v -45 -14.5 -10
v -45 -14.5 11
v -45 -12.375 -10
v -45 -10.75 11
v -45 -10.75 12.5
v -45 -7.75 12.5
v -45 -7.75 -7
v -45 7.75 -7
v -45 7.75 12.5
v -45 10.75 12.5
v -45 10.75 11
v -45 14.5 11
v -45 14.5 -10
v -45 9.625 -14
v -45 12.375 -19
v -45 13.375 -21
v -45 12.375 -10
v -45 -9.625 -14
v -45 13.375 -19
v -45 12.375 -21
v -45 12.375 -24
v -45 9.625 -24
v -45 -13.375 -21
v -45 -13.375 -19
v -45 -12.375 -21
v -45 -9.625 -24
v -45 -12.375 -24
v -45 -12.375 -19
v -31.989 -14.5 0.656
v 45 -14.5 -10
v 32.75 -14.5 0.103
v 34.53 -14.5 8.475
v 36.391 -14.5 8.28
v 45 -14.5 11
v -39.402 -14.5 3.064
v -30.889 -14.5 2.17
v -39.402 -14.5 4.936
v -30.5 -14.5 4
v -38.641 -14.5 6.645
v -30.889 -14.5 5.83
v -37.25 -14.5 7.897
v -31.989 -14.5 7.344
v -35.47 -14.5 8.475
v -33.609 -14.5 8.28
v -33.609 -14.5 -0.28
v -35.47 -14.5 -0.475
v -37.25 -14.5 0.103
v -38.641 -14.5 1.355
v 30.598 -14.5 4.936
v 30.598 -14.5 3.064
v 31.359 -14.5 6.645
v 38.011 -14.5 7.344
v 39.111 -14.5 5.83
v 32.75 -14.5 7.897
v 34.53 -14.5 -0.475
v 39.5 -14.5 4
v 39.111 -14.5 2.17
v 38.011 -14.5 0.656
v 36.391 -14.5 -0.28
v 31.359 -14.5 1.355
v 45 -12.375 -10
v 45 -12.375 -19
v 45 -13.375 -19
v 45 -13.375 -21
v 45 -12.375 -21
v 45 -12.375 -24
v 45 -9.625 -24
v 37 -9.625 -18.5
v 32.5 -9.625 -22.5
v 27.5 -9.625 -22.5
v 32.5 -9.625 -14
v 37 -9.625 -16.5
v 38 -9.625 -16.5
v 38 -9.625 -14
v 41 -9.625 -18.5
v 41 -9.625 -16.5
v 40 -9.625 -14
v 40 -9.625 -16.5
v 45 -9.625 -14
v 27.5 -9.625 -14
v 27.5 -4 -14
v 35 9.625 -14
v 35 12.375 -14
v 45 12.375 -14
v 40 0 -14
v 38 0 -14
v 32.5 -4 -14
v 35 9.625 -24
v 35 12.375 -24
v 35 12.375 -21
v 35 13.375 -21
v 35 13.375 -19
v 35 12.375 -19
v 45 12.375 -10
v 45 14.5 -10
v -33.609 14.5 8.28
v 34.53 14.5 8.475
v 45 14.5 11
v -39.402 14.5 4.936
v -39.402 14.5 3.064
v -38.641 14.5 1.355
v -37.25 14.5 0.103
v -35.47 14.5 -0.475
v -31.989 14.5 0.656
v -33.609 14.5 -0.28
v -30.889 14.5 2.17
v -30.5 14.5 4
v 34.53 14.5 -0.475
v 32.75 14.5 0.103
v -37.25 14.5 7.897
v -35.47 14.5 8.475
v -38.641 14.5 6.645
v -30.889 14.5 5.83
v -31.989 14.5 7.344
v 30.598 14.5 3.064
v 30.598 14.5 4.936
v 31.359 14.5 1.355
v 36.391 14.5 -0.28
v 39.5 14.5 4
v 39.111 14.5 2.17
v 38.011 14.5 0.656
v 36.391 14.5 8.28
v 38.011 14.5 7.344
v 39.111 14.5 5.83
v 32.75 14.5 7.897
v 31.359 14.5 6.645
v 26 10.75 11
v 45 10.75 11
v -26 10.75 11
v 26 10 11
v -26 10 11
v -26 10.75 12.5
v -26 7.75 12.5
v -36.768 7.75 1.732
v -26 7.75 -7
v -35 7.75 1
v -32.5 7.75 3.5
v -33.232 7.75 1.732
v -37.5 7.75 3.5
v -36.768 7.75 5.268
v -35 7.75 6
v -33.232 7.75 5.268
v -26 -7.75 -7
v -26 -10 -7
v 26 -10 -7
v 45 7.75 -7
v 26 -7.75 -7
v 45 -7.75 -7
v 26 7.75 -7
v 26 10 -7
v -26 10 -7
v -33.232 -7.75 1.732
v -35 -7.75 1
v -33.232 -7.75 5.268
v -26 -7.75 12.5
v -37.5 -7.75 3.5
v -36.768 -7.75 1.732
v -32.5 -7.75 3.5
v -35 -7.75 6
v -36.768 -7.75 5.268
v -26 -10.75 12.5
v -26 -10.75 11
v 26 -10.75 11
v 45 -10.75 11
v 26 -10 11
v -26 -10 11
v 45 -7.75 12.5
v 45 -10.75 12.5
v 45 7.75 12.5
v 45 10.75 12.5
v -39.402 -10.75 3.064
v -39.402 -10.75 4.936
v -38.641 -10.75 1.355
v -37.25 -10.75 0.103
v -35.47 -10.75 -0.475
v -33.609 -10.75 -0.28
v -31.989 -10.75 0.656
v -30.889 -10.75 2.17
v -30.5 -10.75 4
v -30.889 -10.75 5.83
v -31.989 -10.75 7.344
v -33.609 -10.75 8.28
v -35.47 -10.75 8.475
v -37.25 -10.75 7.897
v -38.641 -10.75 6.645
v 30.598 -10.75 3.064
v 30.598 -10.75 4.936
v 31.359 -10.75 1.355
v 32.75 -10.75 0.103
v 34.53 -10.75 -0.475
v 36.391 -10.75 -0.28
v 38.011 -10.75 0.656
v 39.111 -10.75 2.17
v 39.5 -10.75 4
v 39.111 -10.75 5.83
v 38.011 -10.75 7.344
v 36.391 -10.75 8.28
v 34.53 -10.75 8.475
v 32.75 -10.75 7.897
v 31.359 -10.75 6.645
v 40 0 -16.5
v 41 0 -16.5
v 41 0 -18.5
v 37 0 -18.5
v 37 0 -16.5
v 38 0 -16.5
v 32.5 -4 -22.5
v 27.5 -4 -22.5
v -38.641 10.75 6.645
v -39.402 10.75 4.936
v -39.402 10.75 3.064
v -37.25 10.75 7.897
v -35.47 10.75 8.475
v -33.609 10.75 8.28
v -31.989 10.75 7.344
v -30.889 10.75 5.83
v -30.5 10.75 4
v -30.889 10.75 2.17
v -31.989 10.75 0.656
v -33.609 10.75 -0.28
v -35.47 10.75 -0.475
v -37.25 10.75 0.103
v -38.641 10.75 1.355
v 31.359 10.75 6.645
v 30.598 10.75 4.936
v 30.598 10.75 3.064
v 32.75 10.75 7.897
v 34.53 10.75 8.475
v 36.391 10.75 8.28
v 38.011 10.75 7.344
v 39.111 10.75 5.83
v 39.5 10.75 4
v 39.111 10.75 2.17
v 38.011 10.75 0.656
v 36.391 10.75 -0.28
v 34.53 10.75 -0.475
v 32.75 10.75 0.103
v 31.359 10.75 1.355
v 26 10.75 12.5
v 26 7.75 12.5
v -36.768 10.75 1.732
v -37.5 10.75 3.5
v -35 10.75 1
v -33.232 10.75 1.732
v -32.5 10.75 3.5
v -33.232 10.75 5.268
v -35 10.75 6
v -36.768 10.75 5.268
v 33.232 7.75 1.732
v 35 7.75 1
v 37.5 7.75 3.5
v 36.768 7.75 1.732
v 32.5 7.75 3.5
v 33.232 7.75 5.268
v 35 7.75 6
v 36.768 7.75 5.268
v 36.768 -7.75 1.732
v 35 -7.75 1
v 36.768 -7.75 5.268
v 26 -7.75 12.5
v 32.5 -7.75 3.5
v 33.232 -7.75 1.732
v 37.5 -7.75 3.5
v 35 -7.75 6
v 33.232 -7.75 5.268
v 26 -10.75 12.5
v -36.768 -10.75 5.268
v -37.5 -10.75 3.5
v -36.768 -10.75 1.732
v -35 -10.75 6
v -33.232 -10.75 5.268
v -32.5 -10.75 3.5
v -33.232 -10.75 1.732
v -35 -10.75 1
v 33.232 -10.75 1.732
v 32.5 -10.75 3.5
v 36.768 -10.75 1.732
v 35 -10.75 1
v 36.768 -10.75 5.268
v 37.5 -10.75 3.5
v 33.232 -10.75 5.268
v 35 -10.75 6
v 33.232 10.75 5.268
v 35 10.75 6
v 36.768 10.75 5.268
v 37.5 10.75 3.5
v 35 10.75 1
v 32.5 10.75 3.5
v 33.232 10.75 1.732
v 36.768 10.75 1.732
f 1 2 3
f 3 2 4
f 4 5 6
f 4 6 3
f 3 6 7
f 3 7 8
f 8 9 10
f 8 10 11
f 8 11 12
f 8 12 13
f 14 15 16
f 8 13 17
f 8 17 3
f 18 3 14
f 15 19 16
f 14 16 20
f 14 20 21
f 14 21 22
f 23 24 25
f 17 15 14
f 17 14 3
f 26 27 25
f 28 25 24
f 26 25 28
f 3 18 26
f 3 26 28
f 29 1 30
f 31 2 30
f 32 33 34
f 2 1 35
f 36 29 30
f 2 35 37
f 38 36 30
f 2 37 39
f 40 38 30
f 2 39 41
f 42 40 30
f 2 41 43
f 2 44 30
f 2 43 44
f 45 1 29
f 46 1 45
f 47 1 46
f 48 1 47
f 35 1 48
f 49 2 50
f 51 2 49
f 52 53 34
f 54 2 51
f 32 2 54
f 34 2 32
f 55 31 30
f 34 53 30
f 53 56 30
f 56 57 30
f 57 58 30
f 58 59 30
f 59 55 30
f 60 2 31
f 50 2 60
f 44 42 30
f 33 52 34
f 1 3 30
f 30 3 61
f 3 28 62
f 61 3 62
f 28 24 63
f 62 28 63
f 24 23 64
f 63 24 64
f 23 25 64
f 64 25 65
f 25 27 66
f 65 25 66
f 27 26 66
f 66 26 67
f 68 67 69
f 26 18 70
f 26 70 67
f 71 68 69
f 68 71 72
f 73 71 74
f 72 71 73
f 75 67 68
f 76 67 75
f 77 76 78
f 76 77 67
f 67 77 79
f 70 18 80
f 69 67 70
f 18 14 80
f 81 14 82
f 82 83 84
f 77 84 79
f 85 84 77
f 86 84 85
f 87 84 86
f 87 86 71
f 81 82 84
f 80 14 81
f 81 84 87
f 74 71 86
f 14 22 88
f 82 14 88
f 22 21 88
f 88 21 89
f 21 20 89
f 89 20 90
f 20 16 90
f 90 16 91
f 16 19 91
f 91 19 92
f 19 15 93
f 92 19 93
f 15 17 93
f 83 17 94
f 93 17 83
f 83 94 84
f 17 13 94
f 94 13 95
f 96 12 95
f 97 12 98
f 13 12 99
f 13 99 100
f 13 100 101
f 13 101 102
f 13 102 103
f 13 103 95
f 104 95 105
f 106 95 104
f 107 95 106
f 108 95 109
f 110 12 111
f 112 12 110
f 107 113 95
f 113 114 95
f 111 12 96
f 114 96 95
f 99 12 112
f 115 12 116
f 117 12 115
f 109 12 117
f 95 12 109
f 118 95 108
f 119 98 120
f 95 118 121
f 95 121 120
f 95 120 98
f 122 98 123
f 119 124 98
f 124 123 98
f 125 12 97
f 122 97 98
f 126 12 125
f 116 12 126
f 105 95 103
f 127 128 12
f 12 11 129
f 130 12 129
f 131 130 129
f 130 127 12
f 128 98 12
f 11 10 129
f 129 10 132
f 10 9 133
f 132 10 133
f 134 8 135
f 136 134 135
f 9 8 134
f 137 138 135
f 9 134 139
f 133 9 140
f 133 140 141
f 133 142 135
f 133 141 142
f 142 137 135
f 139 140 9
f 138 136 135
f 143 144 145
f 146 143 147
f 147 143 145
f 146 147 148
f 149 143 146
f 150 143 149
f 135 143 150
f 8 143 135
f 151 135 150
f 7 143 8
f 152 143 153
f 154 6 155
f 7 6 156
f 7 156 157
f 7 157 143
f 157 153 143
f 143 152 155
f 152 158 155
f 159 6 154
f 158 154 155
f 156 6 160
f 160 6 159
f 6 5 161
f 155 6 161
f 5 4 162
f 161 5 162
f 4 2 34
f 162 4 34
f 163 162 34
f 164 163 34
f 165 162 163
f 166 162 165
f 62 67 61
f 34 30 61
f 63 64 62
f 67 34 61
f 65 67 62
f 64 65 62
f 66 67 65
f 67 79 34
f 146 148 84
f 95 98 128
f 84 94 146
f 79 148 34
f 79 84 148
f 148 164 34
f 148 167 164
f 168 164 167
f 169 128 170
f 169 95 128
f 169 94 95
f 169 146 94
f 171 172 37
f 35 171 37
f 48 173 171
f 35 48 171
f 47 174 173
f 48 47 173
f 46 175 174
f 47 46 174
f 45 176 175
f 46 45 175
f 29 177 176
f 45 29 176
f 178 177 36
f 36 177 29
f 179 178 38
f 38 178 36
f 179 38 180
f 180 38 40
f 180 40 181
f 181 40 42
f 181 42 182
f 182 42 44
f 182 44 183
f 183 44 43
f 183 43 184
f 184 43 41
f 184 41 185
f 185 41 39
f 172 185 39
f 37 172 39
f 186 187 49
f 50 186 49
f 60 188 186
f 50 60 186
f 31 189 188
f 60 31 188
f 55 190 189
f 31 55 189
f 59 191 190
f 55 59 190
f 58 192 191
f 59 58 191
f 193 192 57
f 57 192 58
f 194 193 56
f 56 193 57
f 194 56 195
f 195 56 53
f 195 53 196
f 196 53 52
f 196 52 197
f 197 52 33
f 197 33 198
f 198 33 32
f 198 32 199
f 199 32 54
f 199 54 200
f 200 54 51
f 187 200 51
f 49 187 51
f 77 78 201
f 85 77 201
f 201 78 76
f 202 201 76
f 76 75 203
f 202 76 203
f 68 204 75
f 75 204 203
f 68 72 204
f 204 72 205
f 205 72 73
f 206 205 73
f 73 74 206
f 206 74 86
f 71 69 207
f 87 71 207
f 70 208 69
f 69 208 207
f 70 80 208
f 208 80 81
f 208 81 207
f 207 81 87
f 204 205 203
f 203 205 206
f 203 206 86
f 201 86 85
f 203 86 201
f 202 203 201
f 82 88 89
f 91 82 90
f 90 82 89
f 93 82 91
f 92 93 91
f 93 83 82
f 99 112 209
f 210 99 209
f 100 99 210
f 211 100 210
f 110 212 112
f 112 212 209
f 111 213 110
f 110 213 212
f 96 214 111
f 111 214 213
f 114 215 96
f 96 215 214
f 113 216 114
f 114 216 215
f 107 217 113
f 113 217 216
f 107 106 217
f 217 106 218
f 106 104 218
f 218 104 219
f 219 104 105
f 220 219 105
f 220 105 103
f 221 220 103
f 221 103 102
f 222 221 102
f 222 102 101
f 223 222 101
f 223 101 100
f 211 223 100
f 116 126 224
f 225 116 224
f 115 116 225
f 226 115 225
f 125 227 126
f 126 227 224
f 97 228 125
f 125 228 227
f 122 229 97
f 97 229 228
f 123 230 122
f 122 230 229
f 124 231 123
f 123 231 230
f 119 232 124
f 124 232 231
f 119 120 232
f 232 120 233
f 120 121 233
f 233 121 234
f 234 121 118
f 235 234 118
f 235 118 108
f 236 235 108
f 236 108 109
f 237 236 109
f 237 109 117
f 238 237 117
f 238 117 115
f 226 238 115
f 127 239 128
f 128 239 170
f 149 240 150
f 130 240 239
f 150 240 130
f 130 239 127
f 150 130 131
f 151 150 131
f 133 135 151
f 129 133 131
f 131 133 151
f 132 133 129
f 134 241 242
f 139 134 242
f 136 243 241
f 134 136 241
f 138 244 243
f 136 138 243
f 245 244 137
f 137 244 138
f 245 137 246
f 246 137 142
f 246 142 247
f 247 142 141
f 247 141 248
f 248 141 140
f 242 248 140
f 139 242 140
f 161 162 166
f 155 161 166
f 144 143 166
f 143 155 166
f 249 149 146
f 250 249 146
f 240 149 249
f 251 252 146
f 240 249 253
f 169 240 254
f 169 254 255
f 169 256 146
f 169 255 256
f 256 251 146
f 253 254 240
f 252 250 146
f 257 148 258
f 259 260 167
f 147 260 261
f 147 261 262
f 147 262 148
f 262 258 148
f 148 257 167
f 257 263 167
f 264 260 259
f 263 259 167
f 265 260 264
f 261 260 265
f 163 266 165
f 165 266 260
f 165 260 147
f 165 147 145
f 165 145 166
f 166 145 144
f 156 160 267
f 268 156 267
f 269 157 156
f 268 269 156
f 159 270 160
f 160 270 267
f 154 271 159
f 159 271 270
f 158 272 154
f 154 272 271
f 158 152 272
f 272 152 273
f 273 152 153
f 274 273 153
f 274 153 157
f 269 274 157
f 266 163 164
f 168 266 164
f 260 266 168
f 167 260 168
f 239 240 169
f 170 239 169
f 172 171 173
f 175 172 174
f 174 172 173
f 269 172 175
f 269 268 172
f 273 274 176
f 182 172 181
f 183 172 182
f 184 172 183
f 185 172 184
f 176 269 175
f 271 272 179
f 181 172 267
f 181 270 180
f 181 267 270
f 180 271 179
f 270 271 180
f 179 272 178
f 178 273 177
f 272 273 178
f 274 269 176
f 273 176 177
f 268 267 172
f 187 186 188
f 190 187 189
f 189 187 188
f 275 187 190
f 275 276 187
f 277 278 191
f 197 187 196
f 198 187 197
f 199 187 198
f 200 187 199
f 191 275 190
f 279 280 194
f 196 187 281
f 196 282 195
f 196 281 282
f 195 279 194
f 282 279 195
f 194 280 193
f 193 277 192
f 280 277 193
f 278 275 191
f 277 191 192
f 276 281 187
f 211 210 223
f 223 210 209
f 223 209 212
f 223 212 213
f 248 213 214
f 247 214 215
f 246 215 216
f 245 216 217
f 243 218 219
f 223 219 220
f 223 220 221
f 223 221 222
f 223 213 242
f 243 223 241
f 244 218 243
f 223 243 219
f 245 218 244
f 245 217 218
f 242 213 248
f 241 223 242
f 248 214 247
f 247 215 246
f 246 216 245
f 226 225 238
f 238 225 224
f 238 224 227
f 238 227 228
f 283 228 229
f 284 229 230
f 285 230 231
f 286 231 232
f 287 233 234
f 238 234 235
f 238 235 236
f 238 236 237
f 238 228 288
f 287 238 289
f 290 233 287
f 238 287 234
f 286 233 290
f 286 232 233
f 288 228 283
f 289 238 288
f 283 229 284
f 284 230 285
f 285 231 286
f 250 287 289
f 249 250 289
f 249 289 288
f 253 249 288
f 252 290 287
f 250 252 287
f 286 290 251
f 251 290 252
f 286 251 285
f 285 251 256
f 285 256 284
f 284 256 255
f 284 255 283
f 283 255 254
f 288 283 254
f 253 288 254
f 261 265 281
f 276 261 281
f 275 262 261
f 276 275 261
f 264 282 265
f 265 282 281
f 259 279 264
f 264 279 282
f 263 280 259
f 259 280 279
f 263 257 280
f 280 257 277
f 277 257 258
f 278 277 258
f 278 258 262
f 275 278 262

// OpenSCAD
module mechanical_slideStepper_mountingBracket_small(){
	difference(){
		//movedMainBlockHigherAndTallerToAccommodateScrewHoleHeightAdjustments
//		translate([0,0,70]){
		translate([0,0,70.5]){
//			color([1,1,0]) cube(size=[90,29,20],center=true);
			color([1,1,0]) cube(size=[90,29,21],center=true);
		}
		translate([0,0,73]){
			color([1,1,0]) cube(size=[95,20,20],center=true);
		}
		//mountingScrewHoles
//		translate([35,-9.5,73.5]){
		translate([35,-9.5,74]){
			rotate([90,0,0]){
				cylinder(r=4.5,h=25,center=true);
			}
		}
//		translate([35,9,73.5]){
		translate([35,9,74]){
			rotate([90,0,0]){
				cylinder(r=4.5,h=25,center=true);
			}
		}
//		translate([-35,-9,73.5]){
		translate([-35,-9,74]){
			rotate([90,0,0]){
				cylinder(r=4.5,h=25,center=true);
			}
		}
//		translate([-35,9,73.5]){
		translate([-35,9,74]){
			rotate([90,0,0]){
				cylinder(r=4.5,h=25,center=true);
			}
		}
	}
	//cornerPads
	difference(){
		translate([35.5,-9.25,72]){
			color([1,1,0]) cube(size=[19,3,21],center=true);
		}	
		translate([35,-9.5,73.5]){
			rotate([90,0,0]){
				cylinder(r=2.5,h=25,center=true);
			}
		}
	}
	difference(){
		translate([35.5,9.25,72]){
			color([1,1,0]) cube(size=[19,3,21],center=true);
		}	
		translate([35,9,73.5]){
			rotate([90,0,0]){
				cylinder(r=2.5,h=25,center=true);
			}
		}
	}

	difference(){
		translate([-35.5,-9.25,72]){
			color([1,1,0]) cube(size=[19,3,21],center=true);
		}	
		translate([-35,-9,73.5]){
			rotate([90,0,0]){
				cylinder(r=2.5,h=25,center=true);
			}
		}
	}
	difference(){
		translate([-35.5,9.25,72]){
			color([1,1,0]) cube(size=[19,3,21],center=true);
		}
		translate([-35,9,73.5]){
			rotate([90,0,0]){
				cylinder(r=2.5,h=25,center=true);
			}
		}
	}

	//slidesAdjustedToMakeAtighterFit
	translate([0,0,58]){
//		color([1,1,0])  cube(size=[90,23.5,4],center=true);
		color([1,1,0])  cube(size=[90,24.75,4],center=true);
	}
	//verticalGuides
//	translate([0,-10.5,51]){
	translate([0,-11,51]){
		color([1,1,0])  cube(size=[90,2.75,10],center=true);
	}
//	translate([-5,10.5,51]){
	translate([-5,11,51]){
		color([1,1,0])  cube(size=[80,2.75,10],center=true);
	}
	//slides
//	translate([0,-11.75,50]){
	translate([0,-12,50]){
		color([1,1,0])  cube(size=[90,2.75,2],center=true);
	}
//	translate([-5,11.75,50]){
	translate([-5,12,50]){
		color([1,1,0])  cube(size=[80,2.75,2],center=true);
	}
	

	translate([39,-6,54]) cube(size=[2,12,5],center=true);
	translate([39,-6,52.5]) cube(size=[4,12,2],center=true);
	translate([30,-7,52]) cube(size=[5,6,9],center=true);
}

translate([0,0,-70]){
	mechanical_slideStepper_mountingBracket_small();
}
